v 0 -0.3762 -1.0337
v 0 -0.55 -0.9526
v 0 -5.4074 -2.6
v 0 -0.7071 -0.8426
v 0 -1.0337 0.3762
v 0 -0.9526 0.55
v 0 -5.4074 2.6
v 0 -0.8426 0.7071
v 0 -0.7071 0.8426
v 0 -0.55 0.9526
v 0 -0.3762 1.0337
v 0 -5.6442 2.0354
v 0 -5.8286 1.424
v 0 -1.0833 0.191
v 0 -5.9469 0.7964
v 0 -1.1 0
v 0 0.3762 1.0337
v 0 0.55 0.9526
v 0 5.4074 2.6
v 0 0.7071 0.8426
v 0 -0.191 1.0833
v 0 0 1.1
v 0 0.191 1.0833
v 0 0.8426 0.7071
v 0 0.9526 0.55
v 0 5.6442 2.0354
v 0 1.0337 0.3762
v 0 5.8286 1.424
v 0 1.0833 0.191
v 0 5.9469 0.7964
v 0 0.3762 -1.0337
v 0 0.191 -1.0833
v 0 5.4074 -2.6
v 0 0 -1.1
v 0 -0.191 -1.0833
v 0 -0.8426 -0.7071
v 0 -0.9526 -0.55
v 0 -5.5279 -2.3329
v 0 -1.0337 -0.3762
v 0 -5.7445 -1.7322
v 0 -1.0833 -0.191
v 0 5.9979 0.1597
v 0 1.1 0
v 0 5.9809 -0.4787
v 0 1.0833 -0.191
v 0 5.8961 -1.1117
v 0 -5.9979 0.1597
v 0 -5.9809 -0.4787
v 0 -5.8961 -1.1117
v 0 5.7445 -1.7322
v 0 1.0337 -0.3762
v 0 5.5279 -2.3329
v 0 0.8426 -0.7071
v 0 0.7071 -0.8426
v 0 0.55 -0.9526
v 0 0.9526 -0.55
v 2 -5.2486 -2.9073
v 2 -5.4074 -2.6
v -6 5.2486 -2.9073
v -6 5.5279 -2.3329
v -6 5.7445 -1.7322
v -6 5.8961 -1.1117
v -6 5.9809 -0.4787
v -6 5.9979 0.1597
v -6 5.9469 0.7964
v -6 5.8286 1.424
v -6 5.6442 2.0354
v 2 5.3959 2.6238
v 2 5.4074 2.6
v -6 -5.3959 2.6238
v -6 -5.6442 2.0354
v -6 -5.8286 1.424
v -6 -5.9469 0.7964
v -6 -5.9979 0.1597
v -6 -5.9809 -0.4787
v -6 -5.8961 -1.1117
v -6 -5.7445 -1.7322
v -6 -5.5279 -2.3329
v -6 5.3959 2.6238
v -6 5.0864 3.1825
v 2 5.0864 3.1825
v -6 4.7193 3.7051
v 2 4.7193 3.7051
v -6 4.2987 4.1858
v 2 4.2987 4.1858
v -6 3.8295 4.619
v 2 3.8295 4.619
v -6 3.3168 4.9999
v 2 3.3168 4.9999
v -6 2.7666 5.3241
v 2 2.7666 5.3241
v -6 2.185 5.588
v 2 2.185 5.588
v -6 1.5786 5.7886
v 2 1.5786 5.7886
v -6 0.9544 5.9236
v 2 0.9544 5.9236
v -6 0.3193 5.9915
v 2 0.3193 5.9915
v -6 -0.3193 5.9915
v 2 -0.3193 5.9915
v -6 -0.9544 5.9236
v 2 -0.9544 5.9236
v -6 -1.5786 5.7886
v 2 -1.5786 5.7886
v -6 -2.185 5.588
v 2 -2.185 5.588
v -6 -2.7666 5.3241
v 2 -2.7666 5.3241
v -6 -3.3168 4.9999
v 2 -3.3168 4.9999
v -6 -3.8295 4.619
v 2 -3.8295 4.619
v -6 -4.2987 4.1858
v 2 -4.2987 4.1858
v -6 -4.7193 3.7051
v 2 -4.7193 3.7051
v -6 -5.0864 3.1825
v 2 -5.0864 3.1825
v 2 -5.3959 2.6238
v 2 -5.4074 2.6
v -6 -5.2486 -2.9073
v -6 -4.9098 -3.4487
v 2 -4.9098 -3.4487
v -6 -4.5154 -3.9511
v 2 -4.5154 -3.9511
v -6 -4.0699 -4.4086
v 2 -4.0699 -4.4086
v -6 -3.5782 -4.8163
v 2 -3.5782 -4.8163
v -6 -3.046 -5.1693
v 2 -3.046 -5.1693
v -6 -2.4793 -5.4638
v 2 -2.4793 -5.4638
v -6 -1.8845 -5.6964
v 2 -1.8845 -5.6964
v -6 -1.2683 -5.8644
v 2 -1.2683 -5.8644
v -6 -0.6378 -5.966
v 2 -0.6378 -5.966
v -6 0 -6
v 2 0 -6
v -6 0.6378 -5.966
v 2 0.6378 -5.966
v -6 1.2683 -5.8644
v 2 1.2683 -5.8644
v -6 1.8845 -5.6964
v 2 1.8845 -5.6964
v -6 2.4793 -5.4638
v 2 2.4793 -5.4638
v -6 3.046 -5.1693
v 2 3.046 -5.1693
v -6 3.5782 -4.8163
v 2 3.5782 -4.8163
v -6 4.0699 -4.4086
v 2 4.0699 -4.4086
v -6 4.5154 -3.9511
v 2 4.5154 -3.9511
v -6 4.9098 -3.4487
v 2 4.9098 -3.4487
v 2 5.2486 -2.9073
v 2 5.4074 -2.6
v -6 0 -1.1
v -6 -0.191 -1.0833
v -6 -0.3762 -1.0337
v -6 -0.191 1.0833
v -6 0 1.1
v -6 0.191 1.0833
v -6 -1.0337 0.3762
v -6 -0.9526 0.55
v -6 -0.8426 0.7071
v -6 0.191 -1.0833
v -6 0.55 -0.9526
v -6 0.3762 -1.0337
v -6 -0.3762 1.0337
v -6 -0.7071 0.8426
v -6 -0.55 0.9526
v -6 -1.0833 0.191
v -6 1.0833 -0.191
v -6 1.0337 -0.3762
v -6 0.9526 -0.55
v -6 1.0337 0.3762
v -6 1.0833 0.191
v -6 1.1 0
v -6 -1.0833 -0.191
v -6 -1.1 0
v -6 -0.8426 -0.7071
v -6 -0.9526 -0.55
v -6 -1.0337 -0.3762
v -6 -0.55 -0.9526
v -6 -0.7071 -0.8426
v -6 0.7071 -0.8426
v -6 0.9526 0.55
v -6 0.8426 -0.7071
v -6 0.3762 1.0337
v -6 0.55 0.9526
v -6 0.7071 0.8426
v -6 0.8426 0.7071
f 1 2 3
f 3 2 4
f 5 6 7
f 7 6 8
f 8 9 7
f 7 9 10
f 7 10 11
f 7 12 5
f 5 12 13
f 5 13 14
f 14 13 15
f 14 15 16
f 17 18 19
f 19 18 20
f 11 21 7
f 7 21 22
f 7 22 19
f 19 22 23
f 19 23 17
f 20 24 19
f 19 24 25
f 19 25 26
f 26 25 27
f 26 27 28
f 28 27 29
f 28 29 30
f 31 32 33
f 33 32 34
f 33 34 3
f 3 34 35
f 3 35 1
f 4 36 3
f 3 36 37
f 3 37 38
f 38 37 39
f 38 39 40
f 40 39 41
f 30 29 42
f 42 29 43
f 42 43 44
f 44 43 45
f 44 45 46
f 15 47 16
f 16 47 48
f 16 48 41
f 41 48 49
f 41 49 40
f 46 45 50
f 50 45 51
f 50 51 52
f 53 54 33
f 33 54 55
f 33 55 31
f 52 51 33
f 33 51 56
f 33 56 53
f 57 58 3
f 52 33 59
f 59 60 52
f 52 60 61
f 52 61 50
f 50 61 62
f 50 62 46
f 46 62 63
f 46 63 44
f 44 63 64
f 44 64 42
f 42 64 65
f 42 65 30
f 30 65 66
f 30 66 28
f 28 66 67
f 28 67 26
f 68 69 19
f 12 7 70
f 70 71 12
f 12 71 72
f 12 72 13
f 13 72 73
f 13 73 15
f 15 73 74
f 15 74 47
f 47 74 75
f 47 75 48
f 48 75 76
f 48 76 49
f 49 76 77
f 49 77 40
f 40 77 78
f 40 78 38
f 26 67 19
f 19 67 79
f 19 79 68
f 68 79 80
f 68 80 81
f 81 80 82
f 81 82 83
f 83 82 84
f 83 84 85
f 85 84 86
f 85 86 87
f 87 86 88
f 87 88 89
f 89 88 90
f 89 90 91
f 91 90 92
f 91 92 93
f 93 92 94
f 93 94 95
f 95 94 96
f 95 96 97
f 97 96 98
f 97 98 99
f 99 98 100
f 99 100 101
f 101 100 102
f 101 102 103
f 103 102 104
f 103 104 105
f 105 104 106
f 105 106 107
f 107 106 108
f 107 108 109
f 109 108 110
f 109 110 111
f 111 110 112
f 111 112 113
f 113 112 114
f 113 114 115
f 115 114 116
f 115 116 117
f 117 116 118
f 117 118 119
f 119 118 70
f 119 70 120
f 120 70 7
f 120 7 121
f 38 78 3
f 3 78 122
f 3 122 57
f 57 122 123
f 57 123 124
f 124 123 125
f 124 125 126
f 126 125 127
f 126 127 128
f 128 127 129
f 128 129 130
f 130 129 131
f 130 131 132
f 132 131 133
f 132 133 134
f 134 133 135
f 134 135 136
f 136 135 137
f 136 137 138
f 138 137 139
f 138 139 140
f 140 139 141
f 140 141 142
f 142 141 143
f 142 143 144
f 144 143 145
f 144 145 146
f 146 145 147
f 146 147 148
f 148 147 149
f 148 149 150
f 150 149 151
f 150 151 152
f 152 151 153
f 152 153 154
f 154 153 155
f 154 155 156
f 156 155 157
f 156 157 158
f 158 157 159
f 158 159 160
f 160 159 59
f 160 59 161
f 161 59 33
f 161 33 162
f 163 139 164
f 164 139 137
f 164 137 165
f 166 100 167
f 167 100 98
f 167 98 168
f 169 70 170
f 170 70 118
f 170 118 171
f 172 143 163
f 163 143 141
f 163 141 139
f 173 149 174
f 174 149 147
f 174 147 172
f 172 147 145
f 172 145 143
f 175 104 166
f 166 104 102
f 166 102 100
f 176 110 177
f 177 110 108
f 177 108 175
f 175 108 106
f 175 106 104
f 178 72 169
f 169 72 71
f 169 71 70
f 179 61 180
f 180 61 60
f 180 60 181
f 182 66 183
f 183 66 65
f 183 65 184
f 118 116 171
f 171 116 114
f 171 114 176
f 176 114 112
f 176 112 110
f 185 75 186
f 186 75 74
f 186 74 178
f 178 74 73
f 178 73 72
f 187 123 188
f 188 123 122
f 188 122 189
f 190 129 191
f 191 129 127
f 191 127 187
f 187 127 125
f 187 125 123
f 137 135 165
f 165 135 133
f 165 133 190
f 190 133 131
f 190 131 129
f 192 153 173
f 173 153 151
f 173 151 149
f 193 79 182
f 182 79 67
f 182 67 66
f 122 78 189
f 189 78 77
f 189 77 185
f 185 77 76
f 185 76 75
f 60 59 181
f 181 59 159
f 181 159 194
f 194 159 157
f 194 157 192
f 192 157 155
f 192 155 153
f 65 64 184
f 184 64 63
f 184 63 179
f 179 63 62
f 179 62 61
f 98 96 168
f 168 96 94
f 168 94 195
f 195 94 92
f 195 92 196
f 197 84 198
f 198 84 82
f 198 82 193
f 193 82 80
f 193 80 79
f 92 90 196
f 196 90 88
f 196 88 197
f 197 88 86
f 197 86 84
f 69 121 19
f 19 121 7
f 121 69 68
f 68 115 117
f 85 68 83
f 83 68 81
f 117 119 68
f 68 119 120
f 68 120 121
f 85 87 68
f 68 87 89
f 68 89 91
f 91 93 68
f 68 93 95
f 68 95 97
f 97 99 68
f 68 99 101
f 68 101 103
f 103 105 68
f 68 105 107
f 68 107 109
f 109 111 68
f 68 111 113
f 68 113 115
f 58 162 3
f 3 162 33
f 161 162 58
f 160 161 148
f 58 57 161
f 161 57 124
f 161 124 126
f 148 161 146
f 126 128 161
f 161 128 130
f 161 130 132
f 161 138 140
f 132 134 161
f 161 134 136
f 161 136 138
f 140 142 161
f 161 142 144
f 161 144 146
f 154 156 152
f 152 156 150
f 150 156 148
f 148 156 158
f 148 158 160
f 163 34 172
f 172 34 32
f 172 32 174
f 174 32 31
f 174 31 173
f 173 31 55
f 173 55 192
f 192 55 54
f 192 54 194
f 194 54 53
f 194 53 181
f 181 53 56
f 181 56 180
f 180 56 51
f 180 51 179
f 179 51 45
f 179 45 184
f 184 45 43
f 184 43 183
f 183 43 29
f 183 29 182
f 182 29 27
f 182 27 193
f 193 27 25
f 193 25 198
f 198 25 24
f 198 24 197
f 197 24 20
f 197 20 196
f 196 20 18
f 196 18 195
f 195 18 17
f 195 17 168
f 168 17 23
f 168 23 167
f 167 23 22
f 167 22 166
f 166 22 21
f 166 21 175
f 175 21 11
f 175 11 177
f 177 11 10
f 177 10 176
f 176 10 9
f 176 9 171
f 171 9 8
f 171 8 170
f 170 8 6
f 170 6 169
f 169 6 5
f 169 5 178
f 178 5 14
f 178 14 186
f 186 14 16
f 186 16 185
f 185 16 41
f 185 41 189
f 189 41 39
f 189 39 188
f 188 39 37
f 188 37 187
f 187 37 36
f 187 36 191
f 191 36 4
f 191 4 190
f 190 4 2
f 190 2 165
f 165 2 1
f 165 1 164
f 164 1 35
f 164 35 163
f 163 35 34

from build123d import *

# Parameters (mm, degrees)
SKETCH1_R                = 6
BOSS_EXTRUDE1_DEPTH      = 6
BOSS_EXTRUDE2_DEPTH      = 2
M2_CLEARANCE_HOLE1_D     = 2.2
M2_CLEARANCE_HOLE1_DEPTH = 6


with BuildPart() as part:
    # Sketch1 → Boss-Extrude1 (new body)
    with BuildSketch(Plane(origin=(0, 0, 0), x_dir=(0, 0, -1), z_dir=(1, 0, 0))):
        Circle(SKETCH1_R)
    extrude(amount=-BOSS_EXTRUDE1_DEPTH)

    # Sketch2 → Boss-Extrude2 (add)
    with BuildSketch(Plane(origin=(0, 0, 0), x_dir=(0, 0, -1), z_dir=(1, 0, 0))):
        with BuildLine():
            Line((-2.6, 5.407402334), (-2.6, -5.407402334))
            ThreePointArc((-2.6, -5.407402334), (-6, 0), (-2.6, 5.407402334))
        make_face()
        with BuildLine():
            Line((2.6, -5.407402334), (2.6, 5.407402334))
            ThreePointArc((2.6, 5.407402334), (6, 0), (2.6, -5.407402334))
        make_face()
    extrude(amount=BOSS_EXTRUDE2_DEPTH)

    # M2 Clearance Hole1
    with Locations(Plane(origin=(0, 0, 0), x_dir=(0, 0, -1), z_dir=(1, 0, 0))):
        with Locations((0, 0)):
            Hole(M2_CLEARANCE_HOLE1_D / 2, depth=M2_CLEARANCE_HOLE1_DEPTH)


solid = part.part
